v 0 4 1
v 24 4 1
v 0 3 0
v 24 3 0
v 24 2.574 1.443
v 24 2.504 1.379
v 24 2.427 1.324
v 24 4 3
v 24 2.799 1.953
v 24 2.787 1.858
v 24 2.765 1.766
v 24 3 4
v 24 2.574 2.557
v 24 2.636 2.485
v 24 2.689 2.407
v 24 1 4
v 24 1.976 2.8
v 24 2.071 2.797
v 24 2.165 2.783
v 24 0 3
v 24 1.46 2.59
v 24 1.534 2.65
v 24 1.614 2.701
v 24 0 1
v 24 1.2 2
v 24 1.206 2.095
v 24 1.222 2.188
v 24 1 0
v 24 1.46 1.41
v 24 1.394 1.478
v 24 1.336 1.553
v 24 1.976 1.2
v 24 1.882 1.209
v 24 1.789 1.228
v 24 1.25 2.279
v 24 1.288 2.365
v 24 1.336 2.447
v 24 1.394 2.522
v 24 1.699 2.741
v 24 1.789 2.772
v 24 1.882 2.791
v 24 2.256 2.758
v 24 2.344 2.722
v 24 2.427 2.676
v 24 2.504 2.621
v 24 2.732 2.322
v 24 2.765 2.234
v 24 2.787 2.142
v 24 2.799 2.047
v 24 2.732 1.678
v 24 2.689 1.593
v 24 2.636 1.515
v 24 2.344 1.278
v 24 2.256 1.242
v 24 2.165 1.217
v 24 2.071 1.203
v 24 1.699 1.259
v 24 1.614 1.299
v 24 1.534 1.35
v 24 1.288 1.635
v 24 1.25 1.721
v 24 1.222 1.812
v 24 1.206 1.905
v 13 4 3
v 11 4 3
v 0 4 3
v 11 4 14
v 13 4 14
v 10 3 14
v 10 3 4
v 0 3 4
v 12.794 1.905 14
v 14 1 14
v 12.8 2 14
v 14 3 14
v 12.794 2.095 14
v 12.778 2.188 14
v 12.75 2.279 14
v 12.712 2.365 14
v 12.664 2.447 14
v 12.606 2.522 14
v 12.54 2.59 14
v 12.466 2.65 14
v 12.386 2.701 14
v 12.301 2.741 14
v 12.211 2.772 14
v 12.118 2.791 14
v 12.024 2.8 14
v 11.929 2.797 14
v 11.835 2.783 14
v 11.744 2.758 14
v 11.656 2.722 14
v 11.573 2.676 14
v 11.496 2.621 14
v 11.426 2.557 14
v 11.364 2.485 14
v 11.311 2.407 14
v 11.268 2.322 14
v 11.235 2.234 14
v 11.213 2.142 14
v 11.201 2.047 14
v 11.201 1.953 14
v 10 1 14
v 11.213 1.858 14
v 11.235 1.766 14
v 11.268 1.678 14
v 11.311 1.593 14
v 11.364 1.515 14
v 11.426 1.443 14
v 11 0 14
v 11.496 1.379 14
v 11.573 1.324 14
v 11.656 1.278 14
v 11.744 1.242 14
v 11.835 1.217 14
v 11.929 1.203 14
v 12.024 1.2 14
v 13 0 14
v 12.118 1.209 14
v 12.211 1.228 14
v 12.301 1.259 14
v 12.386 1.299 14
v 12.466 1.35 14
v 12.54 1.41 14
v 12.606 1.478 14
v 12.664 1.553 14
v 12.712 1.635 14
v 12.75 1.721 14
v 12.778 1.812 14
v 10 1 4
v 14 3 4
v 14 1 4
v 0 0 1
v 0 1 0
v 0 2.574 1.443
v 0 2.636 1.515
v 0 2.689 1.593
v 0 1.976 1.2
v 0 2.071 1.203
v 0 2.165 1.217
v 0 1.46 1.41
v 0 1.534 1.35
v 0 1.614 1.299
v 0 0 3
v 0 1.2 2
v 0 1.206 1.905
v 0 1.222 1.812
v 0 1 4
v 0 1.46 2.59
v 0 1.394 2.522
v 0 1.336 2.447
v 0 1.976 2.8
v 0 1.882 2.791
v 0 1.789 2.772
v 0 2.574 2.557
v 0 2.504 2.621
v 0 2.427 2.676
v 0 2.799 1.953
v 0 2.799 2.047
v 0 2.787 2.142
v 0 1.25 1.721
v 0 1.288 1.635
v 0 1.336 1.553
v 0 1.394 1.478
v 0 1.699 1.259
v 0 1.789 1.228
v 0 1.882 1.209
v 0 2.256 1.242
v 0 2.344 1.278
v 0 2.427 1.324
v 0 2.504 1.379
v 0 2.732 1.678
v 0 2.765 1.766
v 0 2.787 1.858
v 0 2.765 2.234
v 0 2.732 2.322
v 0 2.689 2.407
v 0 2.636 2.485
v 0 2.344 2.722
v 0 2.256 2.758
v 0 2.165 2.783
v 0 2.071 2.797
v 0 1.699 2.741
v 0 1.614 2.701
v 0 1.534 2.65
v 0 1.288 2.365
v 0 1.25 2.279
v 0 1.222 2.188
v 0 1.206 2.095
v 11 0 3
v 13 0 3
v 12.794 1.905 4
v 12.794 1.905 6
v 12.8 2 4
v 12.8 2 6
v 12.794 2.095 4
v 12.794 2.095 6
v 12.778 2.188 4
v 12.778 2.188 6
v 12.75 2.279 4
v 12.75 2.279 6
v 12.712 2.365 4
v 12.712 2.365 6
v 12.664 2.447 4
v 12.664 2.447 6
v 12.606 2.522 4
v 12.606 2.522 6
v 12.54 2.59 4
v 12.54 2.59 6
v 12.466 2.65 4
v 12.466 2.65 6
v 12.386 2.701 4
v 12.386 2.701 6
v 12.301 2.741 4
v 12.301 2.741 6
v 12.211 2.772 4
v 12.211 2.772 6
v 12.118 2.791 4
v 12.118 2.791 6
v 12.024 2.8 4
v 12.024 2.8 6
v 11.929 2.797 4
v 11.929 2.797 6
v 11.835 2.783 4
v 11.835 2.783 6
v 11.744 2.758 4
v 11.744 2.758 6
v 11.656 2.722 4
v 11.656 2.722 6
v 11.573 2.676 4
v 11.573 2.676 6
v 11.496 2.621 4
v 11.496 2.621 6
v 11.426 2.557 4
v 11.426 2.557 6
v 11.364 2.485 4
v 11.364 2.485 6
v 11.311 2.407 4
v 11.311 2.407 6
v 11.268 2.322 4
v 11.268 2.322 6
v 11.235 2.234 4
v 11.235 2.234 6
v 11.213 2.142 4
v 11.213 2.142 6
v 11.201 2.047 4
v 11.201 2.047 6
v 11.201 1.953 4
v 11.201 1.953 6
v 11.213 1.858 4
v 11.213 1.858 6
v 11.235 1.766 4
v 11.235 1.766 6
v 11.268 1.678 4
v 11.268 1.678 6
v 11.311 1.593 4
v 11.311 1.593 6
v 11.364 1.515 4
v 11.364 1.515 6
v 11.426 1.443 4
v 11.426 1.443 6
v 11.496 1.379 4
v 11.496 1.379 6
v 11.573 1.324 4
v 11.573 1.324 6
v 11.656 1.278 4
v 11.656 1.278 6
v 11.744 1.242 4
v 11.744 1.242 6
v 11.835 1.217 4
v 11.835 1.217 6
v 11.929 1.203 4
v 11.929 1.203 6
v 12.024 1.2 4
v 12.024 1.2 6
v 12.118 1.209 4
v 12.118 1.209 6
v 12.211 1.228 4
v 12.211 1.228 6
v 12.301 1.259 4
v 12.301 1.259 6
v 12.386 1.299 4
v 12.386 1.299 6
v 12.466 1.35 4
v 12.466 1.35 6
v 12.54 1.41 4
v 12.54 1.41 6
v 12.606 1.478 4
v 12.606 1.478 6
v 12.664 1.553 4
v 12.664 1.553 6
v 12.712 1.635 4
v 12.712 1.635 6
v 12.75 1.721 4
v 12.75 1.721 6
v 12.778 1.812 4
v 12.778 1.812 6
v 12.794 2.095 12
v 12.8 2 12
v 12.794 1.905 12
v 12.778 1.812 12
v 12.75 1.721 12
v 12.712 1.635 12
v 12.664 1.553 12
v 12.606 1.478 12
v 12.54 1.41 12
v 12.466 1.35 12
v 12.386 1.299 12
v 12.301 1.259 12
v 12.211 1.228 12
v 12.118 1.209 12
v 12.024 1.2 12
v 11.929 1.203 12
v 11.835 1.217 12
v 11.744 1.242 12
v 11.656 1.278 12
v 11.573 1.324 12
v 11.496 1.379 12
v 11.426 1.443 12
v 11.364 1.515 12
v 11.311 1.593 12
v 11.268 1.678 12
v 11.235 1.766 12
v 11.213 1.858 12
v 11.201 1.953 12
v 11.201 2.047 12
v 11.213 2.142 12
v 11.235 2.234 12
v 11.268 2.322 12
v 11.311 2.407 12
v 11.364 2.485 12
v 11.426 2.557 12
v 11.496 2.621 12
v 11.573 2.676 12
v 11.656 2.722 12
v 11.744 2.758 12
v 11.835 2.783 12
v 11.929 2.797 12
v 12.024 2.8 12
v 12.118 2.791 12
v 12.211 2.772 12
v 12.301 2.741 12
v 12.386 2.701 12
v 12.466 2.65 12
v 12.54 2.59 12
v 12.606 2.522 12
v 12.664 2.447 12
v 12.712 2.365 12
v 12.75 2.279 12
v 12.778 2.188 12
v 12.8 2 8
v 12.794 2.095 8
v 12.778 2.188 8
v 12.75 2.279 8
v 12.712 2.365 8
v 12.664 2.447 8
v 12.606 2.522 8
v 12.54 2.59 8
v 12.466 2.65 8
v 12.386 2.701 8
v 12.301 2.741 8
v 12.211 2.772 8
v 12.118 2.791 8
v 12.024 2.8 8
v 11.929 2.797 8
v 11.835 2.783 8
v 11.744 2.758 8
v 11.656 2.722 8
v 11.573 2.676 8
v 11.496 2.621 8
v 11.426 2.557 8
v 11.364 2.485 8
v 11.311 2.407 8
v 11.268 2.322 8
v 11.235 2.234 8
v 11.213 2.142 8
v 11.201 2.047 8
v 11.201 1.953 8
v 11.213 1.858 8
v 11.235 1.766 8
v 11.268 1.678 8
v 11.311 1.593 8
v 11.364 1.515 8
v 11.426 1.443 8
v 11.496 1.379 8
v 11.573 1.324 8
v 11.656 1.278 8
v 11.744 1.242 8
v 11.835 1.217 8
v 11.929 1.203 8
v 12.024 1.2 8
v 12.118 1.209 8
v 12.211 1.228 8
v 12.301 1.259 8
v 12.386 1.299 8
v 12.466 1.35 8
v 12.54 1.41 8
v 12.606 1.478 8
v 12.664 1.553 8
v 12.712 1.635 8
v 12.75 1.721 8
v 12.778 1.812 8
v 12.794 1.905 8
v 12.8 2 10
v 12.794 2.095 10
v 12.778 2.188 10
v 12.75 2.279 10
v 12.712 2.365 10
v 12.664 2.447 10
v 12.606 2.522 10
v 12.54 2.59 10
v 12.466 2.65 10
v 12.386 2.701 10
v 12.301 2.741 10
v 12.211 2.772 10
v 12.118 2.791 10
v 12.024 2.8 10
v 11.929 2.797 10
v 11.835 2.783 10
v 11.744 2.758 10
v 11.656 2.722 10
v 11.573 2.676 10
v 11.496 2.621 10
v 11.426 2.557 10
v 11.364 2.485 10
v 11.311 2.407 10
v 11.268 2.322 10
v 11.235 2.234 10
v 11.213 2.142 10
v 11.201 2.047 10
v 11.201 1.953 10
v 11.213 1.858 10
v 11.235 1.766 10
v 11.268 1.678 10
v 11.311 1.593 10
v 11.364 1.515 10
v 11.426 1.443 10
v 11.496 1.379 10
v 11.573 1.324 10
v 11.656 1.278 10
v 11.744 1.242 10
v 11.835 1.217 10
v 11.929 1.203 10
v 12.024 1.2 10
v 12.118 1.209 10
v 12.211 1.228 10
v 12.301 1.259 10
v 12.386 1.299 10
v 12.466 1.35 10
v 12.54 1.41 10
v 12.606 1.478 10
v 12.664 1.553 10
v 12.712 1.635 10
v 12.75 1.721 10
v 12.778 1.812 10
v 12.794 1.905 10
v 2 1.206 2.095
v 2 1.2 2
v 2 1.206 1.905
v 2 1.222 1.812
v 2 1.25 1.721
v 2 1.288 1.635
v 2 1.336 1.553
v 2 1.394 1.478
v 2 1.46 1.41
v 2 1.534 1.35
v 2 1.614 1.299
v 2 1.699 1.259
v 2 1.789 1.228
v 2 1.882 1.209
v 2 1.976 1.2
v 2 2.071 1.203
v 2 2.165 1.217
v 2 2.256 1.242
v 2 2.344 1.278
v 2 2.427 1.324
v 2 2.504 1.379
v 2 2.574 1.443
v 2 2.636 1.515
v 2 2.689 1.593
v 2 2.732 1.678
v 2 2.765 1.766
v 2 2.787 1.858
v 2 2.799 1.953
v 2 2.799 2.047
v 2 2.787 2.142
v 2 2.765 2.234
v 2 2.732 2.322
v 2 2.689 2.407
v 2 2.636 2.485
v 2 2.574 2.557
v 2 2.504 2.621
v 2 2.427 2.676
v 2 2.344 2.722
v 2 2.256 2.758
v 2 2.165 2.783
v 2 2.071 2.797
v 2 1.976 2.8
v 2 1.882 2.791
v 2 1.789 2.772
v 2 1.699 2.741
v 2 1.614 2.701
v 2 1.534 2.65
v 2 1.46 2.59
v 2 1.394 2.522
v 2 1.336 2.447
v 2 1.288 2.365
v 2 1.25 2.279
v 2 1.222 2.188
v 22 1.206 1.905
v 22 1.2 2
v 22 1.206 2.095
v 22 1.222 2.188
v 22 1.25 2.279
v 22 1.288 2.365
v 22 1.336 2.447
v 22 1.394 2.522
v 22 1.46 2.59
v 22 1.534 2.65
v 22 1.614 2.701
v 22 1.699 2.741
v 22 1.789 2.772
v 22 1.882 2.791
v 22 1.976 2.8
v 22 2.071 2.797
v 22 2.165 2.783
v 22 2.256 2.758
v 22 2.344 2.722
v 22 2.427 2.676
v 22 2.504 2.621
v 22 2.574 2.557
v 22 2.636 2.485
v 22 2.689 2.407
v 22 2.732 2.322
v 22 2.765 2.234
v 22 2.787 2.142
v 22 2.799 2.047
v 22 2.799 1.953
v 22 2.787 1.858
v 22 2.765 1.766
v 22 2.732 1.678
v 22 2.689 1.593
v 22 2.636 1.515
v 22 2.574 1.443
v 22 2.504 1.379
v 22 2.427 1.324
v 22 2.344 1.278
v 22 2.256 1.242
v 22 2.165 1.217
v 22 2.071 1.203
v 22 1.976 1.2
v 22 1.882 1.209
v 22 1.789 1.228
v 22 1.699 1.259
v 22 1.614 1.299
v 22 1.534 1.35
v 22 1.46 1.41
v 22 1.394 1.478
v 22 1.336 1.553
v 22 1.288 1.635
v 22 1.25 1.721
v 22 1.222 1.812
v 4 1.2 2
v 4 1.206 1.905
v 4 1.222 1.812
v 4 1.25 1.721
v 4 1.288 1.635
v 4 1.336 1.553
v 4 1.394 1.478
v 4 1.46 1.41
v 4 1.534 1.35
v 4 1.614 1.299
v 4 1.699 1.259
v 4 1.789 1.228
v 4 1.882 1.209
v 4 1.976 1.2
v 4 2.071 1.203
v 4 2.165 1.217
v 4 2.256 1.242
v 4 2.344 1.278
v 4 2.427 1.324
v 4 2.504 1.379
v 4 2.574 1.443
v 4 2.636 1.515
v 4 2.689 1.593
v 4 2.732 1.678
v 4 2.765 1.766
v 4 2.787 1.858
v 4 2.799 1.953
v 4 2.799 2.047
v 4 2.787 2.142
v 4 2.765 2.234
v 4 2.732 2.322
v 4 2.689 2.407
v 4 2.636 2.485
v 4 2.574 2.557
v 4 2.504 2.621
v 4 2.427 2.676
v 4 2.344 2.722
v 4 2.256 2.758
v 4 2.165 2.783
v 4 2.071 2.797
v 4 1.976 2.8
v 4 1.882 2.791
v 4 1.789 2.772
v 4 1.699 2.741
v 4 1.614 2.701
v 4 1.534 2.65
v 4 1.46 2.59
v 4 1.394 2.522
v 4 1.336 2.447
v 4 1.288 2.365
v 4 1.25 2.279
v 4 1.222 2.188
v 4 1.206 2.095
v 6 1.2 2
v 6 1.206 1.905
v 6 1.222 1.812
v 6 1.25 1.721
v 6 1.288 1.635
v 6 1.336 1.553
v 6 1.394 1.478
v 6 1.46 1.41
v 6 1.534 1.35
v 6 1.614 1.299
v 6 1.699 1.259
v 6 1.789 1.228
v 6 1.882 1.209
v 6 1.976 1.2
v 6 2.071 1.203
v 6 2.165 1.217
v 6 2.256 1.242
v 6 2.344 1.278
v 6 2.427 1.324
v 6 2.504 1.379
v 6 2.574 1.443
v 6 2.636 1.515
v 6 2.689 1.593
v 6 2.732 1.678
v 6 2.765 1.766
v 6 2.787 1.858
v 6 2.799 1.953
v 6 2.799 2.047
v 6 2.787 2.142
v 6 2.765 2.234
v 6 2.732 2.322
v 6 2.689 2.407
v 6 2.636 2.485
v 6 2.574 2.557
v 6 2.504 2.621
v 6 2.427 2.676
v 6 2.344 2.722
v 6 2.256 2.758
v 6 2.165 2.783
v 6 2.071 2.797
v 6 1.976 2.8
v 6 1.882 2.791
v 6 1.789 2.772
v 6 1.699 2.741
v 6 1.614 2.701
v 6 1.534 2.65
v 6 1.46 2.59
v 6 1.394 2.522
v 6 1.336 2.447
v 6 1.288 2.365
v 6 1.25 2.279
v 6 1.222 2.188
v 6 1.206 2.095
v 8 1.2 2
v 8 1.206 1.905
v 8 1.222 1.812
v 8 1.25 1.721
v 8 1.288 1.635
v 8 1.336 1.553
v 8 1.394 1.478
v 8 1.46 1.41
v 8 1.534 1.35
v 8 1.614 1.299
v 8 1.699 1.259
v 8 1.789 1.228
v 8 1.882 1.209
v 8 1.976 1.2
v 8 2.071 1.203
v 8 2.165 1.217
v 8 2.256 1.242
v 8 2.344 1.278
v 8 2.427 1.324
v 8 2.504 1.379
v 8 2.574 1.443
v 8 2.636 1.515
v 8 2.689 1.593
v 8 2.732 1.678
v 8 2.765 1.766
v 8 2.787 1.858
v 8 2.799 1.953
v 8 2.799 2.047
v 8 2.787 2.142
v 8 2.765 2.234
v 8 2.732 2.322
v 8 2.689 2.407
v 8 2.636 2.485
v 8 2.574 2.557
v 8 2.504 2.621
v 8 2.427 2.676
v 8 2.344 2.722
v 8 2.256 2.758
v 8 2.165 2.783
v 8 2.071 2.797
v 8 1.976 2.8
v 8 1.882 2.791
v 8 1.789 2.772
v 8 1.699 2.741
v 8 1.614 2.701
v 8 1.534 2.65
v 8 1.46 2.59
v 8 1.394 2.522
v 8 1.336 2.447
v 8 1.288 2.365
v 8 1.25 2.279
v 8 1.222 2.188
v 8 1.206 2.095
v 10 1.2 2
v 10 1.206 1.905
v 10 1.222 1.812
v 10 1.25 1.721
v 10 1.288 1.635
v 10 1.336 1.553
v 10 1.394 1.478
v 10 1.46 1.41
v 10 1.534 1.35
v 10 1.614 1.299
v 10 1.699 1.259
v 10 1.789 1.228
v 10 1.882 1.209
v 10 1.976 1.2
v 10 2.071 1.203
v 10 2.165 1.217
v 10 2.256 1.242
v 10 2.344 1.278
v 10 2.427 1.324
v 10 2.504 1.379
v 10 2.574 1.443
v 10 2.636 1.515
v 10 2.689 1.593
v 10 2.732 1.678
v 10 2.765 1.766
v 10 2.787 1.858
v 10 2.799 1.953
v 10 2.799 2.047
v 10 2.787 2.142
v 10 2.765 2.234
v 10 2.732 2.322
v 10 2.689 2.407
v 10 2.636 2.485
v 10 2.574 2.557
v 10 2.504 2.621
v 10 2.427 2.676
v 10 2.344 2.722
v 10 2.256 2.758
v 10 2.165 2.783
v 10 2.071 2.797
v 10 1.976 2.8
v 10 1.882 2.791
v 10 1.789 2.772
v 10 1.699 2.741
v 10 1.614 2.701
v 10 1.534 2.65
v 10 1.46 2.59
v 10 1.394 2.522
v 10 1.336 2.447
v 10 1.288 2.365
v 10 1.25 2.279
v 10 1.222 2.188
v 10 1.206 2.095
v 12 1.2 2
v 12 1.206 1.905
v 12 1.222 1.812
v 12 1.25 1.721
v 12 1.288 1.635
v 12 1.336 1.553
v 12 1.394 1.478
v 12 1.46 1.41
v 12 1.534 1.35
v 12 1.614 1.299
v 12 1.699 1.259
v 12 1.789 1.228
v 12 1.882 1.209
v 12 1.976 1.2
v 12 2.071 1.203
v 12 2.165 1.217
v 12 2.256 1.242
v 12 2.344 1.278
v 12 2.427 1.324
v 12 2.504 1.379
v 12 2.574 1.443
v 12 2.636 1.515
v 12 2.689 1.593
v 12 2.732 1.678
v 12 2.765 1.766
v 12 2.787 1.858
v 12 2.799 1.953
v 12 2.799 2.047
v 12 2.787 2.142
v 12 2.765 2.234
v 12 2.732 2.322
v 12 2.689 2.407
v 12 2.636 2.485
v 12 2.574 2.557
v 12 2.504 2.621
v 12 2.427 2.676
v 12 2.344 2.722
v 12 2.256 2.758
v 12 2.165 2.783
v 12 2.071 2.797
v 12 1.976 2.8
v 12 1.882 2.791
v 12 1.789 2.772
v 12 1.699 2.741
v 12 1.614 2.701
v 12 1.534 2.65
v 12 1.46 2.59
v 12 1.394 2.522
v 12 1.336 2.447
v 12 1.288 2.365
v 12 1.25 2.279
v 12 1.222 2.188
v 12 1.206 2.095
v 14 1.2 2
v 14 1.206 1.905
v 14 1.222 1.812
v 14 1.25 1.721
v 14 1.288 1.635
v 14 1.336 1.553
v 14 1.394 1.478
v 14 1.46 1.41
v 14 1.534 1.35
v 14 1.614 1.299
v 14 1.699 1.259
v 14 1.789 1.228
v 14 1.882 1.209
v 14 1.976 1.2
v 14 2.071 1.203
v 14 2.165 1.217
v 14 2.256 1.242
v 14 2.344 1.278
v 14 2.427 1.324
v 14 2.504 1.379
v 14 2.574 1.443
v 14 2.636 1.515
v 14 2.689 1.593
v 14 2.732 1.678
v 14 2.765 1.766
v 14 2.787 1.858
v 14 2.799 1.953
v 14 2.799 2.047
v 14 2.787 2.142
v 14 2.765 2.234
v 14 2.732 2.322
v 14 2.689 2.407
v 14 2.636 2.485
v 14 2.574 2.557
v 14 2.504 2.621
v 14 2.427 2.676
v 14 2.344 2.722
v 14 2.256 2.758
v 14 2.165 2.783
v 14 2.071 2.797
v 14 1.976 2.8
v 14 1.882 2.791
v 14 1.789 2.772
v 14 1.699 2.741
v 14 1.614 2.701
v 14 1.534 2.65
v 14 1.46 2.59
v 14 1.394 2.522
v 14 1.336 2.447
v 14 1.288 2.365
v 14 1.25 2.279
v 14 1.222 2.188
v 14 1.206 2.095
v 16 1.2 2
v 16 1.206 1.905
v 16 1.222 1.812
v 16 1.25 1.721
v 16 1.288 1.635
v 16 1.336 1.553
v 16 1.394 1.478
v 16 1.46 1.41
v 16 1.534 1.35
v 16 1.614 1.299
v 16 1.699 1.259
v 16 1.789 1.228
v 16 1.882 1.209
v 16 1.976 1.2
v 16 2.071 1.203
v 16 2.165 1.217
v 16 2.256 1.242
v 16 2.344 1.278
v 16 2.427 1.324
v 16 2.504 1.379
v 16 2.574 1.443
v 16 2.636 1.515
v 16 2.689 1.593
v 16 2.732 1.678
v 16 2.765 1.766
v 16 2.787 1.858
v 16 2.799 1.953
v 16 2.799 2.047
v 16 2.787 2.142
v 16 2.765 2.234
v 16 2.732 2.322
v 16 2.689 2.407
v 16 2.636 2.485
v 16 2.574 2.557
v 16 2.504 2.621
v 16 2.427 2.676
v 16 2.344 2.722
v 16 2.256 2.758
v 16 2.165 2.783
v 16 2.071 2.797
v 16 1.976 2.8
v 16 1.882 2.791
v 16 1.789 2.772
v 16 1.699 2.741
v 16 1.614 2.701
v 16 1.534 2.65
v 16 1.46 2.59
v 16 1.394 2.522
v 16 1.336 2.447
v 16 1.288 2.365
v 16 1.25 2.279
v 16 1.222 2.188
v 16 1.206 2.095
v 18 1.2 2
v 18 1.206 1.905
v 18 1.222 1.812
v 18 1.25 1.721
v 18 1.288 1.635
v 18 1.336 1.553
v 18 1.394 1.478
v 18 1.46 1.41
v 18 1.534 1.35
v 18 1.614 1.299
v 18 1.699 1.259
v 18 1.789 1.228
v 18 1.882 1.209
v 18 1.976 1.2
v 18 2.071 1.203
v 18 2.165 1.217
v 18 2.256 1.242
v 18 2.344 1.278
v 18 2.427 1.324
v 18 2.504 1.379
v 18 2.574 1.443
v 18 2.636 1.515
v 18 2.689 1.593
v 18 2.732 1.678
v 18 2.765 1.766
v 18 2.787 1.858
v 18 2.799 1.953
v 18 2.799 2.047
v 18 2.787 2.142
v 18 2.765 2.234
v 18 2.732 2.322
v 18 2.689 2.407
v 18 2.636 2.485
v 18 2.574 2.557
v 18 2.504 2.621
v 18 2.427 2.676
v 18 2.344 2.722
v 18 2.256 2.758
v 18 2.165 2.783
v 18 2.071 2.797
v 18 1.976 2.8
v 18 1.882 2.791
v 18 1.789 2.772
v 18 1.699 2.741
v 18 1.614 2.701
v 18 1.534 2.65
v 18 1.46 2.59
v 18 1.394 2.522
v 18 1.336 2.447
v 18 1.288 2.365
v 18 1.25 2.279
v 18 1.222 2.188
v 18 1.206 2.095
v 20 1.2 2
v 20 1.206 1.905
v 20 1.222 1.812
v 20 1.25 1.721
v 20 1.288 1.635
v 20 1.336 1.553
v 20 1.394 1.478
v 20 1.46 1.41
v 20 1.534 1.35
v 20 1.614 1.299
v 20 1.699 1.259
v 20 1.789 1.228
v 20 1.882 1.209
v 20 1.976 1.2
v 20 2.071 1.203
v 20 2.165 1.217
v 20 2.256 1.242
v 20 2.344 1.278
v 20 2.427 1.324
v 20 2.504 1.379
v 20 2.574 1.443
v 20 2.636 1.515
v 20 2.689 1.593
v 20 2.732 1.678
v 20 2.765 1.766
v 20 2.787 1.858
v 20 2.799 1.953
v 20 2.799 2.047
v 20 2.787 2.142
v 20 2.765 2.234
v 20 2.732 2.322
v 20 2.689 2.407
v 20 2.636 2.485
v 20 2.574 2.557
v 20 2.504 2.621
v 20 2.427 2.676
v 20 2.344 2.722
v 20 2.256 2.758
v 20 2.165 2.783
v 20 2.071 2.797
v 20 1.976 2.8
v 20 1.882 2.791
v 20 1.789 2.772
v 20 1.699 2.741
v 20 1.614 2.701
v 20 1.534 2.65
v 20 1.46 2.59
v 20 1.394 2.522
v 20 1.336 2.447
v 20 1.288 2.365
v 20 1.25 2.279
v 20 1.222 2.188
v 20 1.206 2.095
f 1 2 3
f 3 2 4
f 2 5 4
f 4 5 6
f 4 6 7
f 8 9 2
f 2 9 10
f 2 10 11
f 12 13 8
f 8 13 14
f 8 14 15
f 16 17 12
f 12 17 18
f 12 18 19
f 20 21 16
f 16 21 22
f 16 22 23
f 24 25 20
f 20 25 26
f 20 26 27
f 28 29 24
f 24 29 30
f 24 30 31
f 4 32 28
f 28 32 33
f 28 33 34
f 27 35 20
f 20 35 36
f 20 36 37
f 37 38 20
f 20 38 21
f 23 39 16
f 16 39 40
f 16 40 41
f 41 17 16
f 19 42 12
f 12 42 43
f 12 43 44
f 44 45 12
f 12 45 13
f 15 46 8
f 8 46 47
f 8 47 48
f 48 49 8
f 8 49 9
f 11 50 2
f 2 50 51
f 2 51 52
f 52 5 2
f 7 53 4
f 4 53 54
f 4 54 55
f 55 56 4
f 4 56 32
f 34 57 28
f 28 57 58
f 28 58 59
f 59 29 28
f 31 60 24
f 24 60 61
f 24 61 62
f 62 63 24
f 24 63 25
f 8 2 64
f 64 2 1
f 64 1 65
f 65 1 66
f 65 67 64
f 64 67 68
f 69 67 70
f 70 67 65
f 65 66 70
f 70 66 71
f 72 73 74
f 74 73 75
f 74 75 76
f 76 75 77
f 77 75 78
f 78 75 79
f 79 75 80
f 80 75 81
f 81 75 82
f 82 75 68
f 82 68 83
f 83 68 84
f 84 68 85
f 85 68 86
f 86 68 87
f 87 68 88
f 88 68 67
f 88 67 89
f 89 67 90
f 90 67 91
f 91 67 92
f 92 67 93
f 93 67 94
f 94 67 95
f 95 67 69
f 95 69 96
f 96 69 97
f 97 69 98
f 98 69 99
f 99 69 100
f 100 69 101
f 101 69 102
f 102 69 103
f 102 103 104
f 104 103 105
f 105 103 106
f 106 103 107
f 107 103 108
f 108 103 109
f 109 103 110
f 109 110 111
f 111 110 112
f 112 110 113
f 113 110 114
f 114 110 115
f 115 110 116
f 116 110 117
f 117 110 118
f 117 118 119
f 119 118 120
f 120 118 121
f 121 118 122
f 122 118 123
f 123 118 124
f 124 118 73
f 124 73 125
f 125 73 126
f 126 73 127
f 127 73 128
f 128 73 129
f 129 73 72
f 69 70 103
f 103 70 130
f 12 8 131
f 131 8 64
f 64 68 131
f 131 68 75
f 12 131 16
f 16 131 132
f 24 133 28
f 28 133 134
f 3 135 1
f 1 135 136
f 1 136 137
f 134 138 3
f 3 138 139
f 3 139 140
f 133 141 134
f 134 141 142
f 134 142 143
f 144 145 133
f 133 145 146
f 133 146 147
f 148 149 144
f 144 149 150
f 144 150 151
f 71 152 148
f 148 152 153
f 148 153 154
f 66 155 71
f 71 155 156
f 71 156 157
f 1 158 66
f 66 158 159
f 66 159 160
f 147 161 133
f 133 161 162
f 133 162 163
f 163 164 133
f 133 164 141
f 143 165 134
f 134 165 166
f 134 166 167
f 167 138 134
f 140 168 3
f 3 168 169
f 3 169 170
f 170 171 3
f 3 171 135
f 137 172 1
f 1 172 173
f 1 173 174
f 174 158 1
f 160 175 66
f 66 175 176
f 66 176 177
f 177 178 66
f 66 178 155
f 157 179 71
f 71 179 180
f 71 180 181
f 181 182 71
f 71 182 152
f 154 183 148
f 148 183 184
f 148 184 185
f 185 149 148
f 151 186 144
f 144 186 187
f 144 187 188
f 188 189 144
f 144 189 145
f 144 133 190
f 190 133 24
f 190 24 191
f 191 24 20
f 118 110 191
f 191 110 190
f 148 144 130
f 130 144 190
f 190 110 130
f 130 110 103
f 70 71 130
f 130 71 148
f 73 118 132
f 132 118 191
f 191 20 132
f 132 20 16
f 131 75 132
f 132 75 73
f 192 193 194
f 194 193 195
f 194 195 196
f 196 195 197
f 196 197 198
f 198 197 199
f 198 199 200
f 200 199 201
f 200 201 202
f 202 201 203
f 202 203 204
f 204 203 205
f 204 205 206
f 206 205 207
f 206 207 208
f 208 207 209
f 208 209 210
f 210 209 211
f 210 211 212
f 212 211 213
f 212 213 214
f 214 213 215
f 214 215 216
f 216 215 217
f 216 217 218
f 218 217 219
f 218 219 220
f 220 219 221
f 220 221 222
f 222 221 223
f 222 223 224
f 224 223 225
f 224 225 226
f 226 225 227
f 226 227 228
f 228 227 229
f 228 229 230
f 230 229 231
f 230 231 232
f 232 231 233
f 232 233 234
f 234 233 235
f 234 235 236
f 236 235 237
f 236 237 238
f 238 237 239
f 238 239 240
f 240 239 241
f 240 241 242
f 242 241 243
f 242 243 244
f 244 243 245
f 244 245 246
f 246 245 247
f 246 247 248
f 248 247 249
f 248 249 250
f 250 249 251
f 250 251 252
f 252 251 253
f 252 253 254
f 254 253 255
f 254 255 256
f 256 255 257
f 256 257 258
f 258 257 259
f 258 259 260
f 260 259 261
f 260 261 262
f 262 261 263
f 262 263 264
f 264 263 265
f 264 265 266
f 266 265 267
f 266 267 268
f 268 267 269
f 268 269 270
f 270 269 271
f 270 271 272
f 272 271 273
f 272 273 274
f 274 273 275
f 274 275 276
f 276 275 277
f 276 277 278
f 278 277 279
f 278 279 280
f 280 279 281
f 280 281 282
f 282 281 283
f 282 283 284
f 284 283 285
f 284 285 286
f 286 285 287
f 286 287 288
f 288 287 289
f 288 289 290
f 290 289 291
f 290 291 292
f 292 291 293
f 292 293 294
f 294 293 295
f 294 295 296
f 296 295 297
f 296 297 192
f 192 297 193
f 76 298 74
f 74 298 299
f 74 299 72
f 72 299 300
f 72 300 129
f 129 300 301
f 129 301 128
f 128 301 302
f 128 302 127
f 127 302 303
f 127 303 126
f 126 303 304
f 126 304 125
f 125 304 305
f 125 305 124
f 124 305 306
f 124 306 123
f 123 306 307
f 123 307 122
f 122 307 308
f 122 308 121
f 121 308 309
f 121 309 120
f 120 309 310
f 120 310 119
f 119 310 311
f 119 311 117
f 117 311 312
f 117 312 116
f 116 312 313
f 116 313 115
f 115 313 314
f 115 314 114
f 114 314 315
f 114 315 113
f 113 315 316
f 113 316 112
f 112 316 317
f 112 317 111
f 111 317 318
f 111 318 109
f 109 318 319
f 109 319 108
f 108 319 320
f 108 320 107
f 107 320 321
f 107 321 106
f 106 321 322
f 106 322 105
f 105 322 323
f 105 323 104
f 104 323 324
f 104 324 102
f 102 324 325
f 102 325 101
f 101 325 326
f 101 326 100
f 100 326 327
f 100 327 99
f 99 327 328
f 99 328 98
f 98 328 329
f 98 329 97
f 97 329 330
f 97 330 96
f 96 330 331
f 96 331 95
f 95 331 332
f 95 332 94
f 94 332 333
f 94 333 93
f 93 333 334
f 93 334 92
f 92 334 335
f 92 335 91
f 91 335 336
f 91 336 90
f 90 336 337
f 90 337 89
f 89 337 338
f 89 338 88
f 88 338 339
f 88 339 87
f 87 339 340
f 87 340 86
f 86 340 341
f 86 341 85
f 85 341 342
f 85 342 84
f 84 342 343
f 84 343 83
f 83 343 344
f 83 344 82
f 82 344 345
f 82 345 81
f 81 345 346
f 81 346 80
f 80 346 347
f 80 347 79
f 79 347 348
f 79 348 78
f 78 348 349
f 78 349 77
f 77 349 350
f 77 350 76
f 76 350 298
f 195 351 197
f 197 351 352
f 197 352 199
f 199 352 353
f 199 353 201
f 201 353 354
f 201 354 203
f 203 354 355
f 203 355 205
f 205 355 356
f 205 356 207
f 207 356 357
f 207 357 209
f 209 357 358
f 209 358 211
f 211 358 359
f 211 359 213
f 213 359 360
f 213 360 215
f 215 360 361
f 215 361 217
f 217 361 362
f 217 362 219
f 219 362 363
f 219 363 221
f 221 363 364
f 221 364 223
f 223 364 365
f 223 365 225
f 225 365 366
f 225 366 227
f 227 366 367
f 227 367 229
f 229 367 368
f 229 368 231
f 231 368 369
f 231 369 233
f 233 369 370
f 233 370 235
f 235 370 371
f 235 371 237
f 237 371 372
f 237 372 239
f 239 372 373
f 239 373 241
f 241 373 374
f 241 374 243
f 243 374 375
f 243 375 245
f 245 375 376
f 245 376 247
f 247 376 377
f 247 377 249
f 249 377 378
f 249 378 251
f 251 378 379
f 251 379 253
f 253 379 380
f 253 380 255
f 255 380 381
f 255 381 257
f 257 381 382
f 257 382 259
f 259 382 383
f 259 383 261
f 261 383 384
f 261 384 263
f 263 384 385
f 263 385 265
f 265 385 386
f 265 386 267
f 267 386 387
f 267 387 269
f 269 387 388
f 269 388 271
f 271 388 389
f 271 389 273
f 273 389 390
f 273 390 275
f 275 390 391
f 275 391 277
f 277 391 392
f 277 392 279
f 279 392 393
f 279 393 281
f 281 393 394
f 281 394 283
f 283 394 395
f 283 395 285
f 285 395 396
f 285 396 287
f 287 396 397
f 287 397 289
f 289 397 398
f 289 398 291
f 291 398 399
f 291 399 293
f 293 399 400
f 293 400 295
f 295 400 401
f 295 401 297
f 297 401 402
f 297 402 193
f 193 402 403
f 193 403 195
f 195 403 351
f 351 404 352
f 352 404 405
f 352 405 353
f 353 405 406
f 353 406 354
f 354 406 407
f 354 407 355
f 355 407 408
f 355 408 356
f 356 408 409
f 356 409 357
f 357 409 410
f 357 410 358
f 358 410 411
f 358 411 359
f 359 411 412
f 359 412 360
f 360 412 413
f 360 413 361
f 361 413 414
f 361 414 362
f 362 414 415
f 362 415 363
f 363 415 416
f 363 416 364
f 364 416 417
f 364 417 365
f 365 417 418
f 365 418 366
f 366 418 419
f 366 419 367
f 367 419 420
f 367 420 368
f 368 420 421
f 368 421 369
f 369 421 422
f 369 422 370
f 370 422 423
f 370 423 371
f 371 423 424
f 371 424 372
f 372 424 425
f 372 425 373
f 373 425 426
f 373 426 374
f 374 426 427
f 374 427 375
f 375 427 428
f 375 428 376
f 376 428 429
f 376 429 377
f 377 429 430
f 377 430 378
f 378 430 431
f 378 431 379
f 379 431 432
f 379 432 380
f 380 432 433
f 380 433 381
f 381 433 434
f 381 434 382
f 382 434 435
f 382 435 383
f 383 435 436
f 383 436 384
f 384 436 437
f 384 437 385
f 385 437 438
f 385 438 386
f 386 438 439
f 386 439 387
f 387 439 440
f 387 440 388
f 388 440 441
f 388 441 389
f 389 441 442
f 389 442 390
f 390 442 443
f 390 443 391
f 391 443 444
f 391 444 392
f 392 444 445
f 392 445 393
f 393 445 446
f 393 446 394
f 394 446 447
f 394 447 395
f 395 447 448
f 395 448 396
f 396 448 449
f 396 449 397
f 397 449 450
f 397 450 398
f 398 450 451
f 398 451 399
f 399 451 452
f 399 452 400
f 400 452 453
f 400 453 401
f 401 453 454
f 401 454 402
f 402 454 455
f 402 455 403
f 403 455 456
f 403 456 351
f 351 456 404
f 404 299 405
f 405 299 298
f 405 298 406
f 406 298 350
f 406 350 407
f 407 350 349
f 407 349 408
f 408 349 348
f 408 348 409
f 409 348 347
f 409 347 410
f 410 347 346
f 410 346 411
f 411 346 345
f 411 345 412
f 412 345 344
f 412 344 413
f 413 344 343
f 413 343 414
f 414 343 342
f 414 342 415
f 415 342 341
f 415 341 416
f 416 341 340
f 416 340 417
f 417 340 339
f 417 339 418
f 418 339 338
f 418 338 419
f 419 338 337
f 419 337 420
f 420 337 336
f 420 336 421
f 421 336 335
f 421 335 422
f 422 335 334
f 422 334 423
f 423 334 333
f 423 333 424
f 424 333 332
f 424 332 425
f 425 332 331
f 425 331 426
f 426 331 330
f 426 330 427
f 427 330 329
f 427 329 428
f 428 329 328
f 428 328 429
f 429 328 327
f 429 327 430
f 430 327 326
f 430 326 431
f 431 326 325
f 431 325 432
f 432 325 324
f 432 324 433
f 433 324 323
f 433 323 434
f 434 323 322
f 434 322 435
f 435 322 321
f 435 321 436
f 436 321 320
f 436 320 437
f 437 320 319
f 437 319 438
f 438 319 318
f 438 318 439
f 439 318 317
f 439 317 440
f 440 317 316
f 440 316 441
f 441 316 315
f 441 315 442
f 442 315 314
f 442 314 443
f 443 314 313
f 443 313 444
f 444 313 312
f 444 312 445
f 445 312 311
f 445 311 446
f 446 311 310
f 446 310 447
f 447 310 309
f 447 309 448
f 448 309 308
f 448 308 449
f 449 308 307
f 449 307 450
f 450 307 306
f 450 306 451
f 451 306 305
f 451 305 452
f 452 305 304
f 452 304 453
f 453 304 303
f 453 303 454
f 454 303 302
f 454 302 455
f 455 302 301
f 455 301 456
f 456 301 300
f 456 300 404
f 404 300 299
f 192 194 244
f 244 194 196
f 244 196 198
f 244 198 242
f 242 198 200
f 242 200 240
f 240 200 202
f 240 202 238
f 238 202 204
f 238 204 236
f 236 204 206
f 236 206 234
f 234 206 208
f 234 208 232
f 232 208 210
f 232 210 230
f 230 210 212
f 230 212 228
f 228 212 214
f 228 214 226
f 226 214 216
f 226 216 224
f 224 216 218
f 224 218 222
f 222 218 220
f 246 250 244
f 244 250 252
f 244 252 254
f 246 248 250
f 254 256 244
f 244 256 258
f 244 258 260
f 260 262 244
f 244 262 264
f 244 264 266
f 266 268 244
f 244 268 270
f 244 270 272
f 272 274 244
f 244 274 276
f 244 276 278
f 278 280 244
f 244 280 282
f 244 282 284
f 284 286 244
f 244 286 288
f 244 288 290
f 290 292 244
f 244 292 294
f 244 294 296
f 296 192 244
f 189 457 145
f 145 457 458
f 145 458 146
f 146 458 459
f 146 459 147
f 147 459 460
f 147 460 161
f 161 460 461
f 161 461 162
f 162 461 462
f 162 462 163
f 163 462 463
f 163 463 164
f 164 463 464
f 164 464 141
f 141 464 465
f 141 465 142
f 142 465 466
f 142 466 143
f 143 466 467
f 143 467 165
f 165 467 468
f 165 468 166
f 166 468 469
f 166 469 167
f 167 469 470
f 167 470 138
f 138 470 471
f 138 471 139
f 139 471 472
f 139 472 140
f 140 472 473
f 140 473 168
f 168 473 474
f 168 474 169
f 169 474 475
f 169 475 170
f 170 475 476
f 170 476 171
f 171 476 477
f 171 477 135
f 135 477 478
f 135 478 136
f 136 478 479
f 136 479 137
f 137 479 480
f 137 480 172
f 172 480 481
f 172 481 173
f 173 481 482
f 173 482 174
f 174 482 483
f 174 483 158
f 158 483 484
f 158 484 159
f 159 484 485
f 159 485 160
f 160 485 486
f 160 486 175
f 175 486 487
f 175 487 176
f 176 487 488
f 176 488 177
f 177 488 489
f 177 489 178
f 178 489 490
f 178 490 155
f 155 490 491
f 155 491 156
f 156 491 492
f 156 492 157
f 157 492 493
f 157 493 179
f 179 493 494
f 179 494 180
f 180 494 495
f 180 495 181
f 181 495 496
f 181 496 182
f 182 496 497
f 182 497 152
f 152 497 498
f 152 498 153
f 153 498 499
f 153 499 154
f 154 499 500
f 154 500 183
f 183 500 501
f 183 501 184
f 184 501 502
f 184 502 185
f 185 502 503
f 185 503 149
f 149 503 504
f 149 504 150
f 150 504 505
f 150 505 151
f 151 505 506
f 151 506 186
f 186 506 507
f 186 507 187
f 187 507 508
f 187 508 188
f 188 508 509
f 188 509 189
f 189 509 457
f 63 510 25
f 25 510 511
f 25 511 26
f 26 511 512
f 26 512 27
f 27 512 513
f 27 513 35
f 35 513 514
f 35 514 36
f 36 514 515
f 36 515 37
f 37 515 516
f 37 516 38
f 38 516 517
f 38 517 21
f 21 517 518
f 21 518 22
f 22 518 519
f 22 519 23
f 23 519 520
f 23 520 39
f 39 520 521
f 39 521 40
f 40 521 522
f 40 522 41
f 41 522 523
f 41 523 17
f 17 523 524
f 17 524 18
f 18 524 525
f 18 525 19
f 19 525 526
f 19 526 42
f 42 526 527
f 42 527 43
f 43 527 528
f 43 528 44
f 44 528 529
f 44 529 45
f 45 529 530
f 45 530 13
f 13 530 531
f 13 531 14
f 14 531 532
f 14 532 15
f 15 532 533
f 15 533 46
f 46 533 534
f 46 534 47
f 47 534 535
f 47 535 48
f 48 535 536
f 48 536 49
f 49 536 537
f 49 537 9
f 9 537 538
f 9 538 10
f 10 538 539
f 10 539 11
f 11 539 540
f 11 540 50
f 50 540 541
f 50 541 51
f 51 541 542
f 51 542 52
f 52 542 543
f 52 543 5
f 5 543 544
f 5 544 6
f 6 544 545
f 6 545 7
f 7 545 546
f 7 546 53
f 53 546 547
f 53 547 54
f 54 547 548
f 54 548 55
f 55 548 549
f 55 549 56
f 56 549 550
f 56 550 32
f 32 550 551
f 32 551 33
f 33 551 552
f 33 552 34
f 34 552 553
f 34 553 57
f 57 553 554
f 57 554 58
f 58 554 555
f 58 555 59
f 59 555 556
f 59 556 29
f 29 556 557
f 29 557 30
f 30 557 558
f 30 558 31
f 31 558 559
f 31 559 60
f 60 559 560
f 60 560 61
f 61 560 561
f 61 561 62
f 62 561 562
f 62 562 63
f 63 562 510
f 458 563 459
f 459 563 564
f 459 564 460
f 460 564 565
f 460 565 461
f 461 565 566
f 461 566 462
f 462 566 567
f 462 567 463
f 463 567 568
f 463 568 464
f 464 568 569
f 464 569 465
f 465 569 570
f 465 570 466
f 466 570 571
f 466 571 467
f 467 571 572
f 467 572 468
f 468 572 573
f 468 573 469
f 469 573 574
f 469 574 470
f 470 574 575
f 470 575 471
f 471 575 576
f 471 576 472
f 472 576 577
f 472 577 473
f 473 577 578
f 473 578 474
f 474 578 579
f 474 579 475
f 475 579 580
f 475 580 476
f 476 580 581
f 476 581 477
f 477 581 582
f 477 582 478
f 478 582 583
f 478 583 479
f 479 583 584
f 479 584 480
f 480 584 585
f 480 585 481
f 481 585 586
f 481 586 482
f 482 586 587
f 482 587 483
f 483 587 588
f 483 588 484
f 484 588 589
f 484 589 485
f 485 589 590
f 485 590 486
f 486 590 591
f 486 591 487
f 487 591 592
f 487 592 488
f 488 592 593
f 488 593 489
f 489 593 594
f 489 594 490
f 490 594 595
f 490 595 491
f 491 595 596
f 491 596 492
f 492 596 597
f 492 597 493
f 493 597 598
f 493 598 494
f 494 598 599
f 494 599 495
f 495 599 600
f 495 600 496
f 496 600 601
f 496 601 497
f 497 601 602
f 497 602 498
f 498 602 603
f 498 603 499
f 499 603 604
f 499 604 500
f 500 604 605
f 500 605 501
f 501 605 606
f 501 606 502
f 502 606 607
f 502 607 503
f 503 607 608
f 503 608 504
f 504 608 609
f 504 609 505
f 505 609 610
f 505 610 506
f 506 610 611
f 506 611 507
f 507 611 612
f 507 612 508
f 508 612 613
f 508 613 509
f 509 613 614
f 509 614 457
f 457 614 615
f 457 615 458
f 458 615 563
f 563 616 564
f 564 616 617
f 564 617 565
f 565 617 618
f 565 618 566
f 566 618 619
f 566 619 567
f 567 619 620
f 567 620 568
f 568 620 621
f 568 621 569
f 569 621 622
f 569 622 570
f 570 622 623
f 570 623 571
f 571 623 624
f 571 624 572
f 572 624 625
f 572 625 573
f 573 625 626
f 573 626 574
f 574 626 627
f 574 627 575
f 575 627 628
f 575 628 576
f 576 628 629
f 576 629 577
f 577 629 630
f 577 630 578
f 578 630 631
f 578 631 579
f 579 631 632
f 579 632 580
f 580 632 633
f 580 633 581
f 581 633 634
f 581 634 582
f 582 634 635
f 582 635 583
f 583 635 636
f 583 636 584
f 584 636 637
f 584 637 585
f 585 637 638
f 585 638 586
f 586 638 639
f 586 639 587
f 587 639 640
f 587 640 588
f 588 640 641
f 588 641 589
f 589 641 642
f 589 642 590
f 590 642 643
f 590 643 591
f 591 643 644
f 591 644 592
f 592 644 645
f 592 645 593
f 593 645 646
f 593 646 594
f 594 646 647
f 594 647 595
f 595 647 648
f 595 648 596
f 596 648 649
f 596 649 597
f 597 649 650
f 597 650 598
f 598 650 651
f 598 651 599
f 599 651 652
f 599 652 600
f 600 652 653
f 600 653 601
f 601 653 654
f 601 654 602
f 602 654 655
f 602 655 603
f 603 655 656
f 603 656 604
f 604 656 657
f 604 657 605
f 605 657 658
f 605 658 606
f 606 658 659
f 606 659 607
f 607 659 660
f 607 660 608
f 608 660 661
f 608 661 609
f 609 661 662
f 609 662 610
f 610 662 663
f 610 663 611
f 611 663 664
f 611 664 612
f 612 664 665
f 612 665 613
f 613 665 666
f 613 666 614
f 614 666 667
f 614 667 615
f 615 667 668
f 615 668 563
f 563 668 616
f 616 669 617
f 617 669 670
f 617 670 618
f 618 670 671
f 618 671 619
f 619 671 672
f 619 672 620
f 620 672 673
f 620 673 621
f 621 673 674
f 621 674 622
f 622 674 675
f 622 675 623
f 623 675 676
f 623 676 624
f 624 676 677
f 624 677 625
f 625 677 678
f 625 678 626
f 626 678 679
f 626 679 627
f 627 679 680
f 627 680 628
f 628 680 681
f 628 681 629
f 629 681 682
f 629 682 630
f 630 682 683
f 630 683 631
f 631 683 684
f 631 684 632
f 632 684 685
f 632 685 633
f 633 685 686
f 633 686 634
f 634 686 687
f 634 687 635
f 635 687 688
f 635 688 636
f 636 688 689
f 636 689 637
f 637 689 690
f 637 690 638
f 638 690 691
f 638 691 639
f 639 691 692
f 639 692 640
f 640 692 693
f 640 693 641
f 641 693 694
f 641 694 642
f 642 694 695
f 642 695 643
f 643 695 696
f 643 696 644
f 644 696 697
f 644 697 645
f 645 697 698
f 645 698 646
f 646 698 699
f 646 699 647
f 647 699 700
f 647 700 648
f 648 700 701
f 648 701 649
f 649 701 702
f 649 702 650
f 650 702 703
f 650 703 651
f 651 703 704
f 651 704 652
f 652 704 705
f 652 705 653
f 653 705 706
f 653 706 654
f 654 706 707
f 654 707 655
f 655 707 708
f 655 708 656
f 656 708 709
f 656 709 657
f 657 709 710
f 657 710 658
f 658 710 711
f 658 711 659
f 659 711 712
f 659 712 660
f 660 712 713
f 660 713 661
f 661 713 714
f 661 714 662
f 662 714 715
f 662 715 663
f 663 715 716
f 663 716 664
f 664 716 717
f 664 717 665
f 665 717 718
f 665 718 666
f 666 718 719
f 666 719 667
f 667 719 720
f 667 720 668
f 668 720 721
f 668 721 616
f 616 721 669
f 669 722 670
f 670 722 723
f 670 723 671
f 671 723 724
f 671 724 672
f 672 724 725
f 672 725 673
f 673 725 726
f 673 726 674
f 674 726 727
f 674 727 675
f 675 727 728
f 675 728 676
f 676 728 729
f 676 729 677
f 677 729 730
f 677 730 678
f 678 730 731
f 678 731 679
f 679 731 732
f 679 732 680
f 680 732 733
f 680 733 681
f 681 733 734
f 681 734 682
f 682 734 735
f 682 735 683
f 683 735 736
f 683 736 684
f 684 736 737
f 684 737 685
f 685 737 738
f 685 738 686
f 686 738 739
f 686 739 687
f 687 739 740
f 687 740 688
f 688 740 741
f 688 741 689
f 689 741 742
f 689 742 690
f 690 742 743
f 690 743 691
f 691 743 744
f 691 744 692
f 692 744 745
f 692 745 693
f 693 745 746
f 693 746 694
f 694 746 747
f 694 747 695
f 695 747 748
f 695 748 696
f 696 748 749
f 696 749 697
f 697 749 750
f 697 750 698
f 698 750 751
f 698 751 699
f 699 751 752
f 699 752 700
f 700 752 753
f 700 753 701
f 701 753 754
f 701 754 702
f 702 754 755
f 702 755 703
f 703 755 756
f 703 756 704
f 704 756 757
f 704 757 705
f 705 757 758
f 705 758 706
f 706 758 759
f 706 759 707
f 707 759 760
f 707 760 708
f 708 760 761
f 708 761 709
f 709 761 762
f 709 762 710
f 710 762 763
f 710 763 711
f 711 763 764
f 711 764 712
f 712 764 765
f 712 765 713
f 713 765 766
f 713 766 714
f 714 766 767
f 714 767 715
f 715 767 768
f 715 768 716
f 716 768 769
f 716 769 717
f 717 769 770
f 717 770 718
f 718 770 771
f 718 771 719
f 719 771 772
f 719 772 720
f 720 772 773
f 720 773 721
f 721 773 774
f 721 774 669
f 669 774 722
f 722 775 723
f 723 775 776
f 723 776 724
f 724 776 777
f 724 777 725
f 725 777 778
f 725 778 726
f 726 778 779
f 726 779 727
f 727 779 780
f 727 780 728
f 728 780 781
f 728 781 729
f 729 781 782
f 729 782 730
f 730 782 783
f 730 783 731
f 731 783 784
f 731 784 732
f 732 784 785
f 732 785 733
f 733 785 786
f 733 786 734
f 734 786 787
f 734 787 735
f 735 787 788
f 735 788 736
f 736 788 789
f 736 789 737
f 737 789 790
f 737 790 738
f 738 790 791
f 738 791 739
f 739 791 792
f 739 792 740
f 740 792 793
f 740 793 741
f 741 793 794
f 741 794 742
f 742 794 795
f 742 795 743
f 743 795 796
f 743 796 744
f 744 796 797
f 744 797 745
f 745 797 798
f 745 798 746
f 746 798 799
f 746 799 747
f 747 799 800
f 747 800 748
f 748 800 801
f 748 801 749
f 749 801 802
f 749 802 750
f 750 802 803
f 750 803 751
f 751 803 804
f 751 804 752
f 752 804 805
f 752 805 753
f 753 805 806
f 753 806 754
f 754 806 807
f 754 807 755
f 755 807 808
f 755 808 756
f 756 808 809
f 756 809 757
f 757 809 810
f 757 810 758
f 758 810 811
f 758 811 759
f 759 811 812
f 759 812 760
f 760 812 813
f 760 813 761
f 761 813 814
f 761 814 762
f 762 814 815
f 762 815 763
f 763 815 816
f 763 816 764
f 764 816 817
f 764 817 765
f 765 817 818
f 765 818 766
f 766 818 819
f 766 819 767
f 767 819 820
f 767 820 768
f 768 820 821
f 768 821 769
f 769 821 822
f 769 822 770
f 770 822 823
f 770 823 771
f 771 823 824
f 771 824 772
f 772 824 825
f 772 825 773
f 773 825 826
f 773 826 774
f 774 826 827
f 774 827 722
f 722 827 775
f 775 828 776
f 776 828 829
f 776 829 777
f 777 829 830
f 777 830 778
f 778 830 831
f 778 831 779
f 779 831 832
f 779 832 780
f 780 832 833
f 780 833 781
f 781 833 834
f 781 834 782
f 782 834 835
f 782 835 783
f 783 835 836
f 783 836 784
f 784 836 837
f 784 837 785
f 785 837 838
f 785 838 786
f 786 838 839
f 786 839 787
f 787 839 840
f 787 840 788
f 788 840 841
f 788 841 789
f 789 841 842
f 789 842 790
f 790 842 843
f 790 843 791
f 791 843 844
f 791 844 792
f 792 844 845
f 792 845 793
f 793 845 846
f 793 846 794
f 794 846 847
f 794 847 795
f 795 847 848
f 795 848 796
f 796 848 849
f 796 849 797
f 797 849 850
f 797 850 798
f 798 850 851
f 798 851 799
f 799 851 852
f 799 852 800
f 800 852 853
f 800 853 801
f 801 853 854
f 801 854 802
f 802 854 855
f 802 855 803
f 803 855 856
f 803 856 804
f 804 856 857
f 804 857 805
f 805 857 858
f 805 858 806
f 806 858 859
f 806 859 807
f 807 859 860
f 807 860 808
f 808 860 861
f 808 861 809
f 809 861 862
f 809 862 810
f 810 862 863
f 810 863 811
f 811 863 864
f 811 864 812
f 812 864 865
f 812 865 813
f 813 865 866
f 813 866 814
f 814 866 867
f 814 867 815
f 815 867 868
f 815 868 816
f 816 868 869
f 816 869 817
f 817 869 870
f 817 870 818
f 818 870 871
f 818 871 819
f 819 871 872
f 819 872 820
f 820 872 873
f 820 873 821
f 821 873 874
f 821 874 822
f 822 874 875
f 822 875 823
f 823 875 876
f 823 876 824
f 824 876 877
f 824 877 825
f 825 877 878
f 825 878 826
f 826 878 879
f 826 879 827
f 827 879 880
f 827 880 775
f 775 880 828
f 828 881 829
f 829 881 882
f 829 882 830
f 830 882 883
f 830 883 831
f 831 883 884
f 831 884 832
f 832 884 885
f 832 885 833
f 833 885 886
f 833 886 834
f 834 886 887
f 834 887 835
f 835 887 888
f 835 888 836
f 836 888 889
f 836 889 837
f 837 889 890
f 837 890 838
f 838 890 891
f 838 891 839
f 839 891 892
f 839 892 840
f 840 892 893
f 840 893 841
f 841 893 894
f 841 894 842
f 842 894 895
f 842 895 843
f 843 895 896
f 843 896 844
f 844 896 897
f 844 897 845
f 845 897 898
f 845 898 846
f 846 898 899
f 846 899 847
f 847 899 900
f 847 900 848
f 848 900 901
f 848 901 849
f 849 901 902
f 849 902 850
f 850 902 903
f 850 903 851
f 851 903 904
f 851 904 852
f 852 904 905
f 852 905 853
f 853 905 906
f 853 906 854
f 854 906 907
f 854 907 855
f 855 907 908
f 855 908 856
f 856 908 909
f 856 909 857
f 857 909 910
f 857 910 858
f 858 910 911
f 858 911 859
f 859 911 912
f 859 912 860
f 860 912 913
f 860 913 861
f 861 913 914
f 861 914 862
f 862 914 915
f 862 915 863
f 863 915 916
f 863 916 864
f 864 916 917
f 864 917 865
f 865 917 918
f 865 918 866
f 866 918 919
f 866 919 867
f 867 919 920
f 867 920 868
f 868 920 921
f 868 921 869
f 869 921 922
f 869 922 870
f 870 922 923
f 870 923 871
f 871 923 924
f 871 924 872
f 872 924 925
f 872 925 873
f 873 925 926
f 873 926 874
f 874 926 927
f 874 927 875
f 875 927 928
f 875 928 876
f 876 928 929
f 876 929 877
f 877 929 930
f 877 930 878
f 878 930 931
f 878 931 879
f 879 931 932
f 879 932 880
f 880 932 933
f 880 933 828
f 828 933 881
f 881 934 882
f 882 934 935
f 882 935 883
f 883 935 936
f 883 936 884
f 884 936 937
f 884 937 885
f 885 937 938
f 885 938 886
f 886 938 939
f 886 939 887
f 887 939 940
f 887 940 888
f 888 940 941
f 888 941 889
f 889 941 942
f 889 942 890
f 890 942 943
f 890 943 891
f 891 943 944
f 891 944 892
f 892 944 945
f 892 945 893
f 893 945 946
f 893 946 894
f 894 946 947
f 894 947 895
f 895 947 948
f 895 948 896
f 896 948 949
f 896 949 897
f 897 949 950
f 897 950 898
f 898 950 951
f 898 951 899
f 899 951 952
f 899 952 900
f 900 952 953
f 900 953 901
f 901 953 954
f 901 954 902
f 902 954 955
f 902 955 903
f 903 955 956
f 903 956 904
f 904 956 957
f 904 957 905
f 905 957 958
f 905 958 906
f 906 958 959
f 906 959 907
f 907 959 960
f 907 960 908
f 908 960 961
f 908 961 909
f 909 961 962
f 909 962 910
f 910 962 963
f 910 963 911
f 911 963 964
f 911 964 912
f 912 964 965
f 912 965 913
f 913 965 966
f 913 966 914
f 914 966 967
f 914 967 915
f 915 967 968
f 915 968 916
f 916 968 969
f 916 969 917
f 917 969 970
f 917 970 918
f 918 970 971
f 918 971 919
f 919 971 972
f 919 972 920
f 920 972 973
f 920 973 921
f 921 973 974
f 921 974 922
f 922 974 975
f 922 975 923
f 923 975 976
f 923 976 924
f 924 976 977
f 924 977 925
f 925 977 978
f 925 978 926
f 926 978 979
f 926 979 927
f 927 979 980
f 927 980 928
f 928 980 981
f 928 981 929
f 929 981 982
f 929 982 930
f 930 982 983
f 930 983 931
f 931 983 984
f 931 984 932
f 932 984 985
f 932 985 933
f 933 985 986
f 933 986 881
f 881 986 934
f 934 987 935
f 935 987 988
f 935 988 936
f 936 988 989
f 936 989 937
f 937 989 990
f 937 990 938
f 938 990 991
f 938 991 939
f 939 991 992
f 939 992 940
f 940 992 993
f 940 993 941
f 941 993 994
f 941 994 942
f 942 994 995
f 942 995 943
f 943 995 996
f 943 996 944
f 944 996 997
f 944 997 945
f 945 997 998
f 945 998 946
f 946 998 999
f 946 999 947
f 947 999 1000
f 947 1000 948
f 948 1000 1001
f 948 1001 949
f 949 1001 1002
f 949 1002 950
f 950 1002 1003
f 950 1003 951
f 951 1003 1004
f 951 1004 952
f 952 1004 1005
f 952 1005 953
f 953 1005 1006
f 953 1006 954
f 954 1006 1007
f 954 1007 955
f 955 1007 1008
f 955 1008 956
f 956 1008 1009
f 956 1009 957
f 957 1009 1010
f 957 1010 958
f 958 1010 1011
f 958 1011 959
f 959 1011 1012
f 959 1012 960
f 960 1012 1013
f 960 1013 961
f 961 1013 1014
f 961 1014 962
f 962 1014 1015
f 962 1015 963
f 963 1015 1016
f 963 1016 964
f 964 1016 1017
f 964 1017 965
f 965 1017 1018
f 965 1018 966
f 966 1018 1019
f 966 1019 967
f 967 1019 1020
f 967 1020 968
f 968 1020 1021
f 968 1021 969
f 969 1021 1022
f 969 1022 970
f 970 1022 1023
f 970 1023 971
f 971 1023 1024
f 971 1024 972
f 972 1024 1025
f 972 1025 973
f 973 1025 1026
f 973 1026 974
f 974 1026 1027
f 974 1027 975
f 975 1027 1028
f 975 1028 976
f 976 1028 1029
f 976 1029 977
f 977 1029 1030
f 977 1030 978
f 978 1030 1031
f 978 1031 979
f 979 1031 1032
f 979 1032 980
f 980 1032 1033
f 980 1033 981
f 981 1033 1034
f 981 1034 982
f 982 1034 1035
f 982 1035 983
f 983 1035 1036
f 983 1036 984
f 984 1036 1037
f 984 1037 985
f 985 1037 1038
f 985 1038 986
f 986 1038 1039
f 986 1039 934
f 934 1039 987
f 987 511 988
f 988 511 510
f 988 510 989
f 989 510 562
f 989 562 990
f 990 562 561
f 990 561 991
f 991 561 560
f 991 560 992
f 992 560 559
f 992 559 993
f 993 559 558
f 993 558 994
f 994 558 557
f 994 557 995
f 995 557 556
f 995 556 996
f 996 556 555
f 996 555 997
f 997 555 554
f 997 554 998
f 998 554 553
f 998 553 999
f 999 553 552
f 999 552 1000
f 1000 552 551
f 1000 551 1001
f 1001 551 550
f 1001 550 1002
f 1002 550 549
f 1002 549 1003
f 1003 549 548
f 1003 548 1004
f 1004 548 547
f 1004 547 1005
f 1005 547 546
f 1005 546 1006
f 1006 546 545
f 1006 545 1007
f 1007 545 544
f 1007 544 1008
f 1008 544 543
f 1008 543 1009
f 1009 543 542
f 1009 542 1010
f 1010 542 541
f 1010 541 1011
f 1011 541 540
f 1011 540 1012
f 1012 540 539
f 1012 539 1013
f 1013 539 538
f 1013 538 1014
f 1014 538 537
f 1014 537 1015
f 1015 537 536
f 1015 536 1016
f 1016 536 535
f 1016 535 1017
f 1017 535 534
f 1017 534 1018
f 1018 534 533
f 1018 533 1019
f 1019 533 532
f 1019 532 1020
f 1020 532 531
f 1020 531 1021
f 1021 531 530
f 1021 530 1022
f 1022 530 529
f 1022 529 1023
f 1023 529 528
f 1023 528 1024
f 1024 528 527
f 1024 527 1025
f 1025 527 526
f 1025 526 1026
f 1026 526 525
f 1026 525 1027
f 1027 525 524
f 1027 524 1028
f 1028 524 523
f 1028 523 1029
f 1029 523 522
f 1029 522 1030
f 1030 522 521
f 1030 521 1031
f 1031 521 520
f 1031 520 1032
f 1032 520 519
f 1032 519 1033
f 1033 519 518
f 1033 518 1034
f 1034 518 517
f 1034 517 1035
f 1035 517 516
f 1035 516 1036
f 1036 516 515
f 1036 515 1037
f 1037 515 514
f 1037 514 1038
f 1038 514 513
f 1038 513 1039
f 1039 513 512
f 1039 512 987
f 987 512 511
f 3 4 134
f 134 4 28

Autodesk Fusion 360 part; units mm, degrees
sketch "Sketch1" plane through (0, 0, 0) normal (0, 1, 0) x (1, 0, 0)
  line L0 (0, 0) -> (24, 0)
  line L1 (24, 0) -> (24, -4)
  line L2 (24, -4) -> (0, -4)
  line L3 (0, -4) -> (0, 0)
  line L4 (10, 0) -> (14, 0)
  line L5 (14, 0) -> (14, -14)
  line L6 (14, -14) -> (10, -14)
  line L7 (10, -14) -> (10, 0)
  dimension "d1" = 24
  dimension "d2" = 4
  dimension "d3" = 24
  dimension "d4" = 4
  dimension "d5" = 4
  dimension "d6" = 10
  dimension "d7" = 10
extrude "Extrude1" add sketch "Sketch1" along normal blind 4
sketch "Sketch2" plane through (24, 0, 0) normal (1, 0, 0) x (0, 1, 0)
  line L0 (0, 4) -> (0, 0)
  line L1 (0, 0) -> (4, 0)
  line L2 (4, 0) -> (4, 4)
  line L3 (4, 4) -> (0, 4)
  circle A0 centre (2, 2) radius 0.8
  dimension "d10" = 1.6
  dimension "d11" = 2
  dimension "d12" = 2
extrude "Extrude2" cut sketch "Sketch2" against normal blind 24 contours A0
sketch "Sketch3" plane through (0, 0, 14) normal (0, 0, 1) x (-1, 0, 0)
  line L0 (-10, 0) -> (-14, 0)
  line L1 (-14, 0) -> (-14, -4)
  line L2 (-14, -4) -> (-10, -4)
  line L3 (-10, -4) -> (-10, 0)
  circle A0 centre (-12, -2) radius 0.8
  dimension "d15" = 1.6
  dimension "d16" = 2
  dimension "d17" = 2
extrude "Extrude3" cut sketch "Sketch3" against normal blind 10 contours A0
chamfer "Chamfer1" distance 1 angle 45 10 edges at (19, 0, 4) (14, 0, 9) (10, 0, 9) (5, 0, 4) (12, 0, 0) (19, 4, 4) (14, 4, 9) (10, 4, 9) (5, 4, 4) (12, 4, 0)
equation "d1 = 10 mm + 10 mm + 4 mm"
